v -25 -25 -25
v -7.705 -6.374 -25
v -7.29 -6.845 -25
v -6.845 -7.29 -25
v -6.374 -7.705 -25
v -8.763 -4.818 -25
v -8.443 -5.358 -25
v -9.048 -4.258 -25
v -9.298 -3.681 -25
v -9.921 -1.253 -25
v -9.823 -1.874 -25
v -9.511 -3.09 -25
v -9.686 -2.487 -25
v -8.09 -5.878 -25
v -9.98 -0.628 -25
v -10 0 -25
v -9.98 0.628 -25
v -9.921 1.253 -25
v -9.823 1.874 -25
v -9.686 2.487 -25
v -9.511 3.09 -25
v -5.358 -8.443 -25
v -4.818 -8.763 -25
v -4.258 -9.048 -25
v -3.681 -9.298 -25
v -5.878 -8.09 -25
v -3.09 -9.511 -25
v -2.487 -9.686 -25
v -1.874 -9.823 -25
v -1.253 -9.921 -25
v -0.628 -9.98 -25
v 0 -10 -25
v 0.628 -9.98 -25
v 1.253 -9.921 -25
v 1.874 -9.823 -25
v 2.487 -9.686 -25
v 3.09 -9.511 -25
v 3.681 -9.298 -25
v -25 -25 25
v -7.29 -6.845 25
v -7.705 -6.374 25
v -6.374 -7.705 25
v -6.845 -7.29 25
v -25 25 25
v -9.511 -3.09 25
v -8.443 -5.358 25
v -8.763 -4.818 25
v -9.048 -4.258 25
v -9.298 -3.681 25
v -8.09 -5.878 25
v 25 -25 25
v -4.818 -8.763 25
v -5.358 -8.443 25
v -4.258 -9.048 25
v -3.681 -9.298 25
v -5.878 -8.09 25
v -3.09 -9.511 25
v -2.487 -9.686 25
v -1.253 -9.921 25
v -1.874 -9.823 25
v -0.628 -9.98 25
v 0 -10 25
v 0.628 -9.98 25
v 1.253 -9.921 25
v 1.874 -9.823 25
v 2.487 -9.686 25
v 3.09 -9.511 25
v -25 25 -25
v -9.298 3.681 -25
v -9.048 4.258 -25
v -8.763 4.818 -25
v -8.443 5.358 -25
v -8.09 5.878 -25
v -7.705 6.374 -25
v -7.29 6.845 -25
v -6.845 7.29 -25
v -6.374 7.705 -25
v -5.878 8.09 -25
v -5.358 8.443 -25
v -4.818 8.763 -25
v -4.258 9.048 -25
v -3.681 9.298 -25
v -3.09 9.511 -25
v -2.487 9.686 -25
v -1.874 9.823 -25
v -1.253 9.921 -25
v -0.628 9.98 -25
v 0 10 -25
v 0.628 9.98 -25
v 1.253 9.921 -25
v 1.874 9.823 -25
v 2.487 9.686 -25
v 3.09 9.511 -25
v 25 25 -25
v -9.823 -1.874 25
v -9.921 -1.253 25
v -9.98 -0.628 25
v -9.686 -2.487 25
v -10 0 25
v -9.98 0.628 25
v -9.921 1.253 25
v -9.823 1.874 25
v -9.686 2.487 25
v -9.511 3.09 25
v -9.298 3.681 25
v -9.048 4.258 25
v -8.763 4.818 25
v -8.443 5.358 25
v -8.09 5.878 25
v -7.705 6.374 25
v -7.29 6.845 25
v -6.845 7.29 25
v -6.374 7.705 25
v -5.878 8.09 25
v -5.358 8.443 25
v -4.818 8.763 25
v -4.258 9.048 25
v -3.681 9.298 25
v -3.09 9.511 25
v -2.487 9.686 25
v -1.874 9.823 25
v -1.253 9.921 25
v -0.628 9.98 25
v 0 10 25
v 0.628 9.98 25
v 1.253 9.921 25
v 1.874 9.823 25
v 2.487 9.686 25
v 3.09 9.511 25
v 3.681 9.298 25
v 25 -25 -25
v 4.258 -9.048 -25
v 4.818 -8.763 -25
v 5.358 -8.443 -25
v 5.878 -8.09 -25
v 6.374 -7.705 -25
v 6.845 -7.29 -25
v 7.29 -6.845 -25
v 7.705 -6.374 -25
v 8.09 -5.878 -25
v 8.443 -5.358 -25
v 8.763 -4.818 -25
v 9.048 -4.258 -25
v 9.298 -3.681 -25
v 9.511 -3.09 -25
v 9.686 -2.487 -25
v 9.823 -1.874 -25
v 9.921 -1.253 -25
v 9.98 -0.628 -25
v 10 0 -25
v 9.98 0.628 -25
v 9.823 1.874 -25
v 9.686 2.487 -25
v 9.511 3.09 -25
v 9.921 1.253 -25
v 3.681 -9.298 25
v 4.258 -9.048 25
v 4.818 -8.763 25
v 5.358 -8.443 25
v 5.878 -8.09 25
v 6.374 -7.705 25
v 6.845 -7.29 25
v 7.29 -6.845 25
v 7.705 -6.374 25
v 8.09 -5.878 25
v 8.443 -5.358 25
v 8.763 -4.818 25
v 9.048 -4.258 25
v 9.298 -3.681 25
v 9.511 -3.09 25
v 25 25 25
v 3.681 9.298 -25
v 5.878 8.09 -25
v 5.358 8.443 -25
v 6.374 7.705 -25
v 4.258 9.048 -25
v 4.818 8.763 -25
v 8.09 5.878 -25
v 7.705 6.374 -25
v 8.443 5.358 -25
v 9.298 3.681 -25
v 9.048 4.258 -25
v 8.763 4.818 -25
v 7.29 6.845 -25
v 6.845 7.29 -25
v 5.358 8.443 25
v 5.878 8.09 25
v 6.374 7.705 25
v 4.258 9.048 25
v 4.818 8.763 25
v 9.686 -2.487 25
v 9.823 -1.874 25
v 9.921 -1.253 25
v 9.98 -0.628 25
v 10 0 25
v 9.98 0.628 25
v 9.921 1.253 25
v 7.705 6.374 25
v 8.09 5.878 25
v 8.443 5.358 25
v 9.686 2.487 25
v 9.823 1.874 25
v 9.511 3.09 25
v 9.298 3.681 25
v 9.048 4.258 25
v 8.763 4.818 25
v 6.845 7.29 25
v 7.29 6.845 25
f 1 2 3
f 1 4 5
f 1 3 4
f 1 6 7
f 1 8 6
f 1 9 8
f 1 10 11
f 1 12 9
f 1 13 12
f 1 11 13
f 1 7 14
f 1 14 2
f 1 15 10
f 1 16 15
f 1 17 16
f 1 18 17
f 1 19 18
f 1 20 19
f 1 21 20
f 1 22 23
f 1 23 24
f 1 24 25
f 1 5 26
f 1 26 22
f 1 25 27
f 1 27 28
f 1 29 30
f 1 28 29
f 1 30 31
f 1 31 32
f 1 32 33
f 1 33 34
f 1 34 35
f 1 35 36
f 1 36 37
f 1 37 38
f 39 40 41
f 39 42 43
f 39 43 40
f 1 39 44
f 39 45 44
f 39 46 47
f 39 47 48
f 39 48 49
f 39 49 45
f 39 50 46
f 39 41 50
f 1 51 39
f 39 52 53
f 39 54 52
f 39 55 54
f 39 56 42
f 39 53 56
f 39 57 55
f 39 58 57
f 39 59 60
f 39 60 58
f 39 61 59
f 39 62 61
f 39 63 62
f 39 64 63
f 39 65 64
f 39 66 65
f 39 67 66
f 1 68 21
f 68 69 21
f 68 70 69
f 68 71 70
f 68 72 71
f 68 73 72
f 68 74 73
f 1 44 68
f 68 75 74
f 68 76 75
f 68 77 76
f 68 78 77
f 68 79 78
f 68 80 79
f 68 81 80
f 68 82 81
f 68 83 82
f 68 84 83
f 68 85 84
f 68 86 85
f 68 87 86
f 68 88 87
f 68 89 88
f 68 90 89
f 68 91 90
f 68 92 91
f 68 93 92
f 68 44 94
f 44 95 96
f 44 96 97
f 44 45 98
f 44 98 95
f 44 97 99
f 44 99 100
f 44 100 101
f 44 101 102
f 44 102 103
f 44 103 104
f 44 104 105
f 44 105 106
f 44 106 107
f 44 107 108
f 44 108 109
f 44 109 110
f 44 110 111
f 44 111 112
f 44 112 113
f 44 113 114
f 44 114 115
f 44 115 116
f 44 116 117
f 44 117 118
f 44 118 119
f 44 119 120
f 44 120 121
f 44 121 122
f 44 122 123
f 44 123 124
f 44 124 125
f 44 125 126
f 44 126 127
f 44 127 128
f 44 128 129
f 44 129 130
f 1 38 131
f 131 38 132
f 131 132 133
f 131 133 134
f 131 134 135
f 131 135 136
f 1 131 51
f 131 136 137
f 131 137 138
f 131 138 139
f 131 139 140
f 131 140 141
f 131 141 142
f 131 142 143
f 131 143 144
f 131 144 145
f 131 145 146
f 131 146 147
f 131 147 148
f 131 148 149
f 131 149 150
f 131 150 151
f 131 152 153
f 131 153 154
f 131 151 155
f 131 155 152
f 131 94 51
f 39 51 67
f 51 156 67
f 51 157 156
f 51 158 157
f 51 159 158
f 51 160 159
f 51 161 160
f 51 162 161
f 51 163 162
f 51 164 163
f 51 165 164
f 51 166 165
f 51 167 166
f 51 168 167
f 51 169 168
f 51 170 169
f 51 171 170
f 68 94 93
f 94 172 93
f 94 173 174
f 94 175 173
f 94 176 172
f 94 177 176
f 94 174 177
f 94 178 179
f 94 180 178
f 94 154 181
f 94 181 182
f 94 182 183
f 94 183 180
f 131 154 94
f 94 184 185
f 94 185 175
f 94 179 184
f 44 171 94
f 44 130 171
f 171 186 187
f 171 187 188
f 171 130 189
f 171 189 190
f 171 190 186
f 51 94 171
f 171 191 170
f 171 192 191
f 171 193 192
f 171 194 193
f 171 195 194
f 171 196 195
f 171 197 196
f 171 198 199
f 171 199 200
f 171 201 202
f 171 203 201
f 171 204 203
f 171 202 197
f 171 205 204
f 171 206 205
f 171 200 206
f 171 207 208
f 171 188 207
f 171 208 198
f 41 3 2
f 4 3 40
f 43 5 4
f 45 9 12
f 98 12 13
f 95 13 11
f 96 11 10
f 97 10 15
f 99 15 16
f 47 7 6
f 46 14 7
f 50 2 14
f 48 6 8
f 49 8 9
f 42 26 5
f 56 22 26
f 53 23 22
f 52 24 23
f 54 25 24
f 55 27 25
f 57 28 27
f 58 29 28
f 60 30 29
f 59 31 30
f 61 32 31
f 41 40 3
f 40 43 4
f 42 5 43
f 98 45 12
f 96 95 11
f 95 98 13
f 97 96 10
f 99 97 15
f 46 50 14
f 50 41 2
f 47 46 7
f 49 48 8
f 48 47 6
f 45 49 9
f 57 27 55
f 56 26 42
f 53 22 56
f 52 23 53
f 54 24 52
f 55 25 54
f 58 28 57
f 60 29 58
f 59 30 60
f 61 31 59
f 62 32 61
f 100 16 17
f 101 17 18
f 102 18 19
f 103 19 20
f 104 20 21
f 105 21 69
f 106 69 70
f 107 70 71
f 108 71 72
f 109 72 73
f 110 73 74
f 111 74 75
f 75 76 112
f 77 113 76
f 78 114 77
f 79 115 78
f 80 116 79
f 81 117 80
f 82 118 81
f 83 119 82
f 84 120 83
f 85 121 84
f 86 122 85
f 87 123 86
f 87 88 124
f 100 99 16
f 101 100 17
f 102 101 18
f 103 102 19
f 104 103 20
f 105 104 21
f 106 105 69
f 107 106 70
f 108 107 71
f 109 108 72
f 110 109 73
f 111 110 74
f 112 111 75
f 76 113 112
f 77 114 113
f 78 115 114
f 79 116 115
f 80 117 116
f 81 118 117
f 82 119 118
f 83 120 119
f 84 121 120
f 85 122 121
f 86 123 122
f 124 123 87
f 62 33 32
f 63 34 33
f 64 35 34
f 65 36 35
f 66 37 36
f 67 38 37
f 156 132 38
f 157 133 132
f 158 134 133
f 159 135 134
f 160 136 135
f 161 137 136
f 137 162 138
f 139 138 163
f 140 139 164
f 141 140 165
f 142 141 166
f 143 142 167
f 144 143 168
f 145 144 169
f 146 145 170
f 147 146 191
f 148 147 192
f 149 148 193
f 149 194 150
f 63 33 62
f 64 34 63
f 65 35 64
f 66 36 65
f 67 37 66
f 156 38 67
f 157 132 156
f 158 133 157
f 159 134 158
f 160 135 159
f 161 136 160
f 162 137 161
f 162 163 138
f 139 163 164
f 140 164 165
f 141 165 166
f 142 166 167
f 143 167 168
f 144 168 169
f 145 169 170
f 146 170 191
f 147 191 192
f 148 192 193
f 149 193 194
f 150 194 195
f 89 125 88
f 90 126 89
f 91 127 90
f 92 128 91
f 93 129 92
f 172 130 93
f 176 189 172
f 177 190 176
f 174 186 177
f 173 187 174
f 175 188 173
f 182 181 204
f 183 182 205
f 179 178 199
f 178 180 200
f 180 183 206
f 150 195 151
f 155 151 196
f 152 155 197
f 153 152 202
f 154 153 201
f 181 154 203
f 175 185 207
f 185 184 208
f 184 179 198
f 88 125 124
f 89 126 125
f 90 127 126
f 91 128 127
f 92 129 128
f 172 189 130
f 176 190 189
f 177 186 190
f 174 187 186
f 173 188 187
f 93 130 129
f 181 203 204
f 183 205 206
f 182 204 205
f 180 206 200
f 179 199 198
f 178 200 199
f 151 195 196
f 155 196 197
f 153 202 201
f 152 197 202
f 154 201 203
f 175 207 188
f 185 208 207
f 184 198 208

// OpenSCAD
difference() {
    cube(50, center=true);
    cylinder(h=60, d=20, center=true, $fn=100);
}
